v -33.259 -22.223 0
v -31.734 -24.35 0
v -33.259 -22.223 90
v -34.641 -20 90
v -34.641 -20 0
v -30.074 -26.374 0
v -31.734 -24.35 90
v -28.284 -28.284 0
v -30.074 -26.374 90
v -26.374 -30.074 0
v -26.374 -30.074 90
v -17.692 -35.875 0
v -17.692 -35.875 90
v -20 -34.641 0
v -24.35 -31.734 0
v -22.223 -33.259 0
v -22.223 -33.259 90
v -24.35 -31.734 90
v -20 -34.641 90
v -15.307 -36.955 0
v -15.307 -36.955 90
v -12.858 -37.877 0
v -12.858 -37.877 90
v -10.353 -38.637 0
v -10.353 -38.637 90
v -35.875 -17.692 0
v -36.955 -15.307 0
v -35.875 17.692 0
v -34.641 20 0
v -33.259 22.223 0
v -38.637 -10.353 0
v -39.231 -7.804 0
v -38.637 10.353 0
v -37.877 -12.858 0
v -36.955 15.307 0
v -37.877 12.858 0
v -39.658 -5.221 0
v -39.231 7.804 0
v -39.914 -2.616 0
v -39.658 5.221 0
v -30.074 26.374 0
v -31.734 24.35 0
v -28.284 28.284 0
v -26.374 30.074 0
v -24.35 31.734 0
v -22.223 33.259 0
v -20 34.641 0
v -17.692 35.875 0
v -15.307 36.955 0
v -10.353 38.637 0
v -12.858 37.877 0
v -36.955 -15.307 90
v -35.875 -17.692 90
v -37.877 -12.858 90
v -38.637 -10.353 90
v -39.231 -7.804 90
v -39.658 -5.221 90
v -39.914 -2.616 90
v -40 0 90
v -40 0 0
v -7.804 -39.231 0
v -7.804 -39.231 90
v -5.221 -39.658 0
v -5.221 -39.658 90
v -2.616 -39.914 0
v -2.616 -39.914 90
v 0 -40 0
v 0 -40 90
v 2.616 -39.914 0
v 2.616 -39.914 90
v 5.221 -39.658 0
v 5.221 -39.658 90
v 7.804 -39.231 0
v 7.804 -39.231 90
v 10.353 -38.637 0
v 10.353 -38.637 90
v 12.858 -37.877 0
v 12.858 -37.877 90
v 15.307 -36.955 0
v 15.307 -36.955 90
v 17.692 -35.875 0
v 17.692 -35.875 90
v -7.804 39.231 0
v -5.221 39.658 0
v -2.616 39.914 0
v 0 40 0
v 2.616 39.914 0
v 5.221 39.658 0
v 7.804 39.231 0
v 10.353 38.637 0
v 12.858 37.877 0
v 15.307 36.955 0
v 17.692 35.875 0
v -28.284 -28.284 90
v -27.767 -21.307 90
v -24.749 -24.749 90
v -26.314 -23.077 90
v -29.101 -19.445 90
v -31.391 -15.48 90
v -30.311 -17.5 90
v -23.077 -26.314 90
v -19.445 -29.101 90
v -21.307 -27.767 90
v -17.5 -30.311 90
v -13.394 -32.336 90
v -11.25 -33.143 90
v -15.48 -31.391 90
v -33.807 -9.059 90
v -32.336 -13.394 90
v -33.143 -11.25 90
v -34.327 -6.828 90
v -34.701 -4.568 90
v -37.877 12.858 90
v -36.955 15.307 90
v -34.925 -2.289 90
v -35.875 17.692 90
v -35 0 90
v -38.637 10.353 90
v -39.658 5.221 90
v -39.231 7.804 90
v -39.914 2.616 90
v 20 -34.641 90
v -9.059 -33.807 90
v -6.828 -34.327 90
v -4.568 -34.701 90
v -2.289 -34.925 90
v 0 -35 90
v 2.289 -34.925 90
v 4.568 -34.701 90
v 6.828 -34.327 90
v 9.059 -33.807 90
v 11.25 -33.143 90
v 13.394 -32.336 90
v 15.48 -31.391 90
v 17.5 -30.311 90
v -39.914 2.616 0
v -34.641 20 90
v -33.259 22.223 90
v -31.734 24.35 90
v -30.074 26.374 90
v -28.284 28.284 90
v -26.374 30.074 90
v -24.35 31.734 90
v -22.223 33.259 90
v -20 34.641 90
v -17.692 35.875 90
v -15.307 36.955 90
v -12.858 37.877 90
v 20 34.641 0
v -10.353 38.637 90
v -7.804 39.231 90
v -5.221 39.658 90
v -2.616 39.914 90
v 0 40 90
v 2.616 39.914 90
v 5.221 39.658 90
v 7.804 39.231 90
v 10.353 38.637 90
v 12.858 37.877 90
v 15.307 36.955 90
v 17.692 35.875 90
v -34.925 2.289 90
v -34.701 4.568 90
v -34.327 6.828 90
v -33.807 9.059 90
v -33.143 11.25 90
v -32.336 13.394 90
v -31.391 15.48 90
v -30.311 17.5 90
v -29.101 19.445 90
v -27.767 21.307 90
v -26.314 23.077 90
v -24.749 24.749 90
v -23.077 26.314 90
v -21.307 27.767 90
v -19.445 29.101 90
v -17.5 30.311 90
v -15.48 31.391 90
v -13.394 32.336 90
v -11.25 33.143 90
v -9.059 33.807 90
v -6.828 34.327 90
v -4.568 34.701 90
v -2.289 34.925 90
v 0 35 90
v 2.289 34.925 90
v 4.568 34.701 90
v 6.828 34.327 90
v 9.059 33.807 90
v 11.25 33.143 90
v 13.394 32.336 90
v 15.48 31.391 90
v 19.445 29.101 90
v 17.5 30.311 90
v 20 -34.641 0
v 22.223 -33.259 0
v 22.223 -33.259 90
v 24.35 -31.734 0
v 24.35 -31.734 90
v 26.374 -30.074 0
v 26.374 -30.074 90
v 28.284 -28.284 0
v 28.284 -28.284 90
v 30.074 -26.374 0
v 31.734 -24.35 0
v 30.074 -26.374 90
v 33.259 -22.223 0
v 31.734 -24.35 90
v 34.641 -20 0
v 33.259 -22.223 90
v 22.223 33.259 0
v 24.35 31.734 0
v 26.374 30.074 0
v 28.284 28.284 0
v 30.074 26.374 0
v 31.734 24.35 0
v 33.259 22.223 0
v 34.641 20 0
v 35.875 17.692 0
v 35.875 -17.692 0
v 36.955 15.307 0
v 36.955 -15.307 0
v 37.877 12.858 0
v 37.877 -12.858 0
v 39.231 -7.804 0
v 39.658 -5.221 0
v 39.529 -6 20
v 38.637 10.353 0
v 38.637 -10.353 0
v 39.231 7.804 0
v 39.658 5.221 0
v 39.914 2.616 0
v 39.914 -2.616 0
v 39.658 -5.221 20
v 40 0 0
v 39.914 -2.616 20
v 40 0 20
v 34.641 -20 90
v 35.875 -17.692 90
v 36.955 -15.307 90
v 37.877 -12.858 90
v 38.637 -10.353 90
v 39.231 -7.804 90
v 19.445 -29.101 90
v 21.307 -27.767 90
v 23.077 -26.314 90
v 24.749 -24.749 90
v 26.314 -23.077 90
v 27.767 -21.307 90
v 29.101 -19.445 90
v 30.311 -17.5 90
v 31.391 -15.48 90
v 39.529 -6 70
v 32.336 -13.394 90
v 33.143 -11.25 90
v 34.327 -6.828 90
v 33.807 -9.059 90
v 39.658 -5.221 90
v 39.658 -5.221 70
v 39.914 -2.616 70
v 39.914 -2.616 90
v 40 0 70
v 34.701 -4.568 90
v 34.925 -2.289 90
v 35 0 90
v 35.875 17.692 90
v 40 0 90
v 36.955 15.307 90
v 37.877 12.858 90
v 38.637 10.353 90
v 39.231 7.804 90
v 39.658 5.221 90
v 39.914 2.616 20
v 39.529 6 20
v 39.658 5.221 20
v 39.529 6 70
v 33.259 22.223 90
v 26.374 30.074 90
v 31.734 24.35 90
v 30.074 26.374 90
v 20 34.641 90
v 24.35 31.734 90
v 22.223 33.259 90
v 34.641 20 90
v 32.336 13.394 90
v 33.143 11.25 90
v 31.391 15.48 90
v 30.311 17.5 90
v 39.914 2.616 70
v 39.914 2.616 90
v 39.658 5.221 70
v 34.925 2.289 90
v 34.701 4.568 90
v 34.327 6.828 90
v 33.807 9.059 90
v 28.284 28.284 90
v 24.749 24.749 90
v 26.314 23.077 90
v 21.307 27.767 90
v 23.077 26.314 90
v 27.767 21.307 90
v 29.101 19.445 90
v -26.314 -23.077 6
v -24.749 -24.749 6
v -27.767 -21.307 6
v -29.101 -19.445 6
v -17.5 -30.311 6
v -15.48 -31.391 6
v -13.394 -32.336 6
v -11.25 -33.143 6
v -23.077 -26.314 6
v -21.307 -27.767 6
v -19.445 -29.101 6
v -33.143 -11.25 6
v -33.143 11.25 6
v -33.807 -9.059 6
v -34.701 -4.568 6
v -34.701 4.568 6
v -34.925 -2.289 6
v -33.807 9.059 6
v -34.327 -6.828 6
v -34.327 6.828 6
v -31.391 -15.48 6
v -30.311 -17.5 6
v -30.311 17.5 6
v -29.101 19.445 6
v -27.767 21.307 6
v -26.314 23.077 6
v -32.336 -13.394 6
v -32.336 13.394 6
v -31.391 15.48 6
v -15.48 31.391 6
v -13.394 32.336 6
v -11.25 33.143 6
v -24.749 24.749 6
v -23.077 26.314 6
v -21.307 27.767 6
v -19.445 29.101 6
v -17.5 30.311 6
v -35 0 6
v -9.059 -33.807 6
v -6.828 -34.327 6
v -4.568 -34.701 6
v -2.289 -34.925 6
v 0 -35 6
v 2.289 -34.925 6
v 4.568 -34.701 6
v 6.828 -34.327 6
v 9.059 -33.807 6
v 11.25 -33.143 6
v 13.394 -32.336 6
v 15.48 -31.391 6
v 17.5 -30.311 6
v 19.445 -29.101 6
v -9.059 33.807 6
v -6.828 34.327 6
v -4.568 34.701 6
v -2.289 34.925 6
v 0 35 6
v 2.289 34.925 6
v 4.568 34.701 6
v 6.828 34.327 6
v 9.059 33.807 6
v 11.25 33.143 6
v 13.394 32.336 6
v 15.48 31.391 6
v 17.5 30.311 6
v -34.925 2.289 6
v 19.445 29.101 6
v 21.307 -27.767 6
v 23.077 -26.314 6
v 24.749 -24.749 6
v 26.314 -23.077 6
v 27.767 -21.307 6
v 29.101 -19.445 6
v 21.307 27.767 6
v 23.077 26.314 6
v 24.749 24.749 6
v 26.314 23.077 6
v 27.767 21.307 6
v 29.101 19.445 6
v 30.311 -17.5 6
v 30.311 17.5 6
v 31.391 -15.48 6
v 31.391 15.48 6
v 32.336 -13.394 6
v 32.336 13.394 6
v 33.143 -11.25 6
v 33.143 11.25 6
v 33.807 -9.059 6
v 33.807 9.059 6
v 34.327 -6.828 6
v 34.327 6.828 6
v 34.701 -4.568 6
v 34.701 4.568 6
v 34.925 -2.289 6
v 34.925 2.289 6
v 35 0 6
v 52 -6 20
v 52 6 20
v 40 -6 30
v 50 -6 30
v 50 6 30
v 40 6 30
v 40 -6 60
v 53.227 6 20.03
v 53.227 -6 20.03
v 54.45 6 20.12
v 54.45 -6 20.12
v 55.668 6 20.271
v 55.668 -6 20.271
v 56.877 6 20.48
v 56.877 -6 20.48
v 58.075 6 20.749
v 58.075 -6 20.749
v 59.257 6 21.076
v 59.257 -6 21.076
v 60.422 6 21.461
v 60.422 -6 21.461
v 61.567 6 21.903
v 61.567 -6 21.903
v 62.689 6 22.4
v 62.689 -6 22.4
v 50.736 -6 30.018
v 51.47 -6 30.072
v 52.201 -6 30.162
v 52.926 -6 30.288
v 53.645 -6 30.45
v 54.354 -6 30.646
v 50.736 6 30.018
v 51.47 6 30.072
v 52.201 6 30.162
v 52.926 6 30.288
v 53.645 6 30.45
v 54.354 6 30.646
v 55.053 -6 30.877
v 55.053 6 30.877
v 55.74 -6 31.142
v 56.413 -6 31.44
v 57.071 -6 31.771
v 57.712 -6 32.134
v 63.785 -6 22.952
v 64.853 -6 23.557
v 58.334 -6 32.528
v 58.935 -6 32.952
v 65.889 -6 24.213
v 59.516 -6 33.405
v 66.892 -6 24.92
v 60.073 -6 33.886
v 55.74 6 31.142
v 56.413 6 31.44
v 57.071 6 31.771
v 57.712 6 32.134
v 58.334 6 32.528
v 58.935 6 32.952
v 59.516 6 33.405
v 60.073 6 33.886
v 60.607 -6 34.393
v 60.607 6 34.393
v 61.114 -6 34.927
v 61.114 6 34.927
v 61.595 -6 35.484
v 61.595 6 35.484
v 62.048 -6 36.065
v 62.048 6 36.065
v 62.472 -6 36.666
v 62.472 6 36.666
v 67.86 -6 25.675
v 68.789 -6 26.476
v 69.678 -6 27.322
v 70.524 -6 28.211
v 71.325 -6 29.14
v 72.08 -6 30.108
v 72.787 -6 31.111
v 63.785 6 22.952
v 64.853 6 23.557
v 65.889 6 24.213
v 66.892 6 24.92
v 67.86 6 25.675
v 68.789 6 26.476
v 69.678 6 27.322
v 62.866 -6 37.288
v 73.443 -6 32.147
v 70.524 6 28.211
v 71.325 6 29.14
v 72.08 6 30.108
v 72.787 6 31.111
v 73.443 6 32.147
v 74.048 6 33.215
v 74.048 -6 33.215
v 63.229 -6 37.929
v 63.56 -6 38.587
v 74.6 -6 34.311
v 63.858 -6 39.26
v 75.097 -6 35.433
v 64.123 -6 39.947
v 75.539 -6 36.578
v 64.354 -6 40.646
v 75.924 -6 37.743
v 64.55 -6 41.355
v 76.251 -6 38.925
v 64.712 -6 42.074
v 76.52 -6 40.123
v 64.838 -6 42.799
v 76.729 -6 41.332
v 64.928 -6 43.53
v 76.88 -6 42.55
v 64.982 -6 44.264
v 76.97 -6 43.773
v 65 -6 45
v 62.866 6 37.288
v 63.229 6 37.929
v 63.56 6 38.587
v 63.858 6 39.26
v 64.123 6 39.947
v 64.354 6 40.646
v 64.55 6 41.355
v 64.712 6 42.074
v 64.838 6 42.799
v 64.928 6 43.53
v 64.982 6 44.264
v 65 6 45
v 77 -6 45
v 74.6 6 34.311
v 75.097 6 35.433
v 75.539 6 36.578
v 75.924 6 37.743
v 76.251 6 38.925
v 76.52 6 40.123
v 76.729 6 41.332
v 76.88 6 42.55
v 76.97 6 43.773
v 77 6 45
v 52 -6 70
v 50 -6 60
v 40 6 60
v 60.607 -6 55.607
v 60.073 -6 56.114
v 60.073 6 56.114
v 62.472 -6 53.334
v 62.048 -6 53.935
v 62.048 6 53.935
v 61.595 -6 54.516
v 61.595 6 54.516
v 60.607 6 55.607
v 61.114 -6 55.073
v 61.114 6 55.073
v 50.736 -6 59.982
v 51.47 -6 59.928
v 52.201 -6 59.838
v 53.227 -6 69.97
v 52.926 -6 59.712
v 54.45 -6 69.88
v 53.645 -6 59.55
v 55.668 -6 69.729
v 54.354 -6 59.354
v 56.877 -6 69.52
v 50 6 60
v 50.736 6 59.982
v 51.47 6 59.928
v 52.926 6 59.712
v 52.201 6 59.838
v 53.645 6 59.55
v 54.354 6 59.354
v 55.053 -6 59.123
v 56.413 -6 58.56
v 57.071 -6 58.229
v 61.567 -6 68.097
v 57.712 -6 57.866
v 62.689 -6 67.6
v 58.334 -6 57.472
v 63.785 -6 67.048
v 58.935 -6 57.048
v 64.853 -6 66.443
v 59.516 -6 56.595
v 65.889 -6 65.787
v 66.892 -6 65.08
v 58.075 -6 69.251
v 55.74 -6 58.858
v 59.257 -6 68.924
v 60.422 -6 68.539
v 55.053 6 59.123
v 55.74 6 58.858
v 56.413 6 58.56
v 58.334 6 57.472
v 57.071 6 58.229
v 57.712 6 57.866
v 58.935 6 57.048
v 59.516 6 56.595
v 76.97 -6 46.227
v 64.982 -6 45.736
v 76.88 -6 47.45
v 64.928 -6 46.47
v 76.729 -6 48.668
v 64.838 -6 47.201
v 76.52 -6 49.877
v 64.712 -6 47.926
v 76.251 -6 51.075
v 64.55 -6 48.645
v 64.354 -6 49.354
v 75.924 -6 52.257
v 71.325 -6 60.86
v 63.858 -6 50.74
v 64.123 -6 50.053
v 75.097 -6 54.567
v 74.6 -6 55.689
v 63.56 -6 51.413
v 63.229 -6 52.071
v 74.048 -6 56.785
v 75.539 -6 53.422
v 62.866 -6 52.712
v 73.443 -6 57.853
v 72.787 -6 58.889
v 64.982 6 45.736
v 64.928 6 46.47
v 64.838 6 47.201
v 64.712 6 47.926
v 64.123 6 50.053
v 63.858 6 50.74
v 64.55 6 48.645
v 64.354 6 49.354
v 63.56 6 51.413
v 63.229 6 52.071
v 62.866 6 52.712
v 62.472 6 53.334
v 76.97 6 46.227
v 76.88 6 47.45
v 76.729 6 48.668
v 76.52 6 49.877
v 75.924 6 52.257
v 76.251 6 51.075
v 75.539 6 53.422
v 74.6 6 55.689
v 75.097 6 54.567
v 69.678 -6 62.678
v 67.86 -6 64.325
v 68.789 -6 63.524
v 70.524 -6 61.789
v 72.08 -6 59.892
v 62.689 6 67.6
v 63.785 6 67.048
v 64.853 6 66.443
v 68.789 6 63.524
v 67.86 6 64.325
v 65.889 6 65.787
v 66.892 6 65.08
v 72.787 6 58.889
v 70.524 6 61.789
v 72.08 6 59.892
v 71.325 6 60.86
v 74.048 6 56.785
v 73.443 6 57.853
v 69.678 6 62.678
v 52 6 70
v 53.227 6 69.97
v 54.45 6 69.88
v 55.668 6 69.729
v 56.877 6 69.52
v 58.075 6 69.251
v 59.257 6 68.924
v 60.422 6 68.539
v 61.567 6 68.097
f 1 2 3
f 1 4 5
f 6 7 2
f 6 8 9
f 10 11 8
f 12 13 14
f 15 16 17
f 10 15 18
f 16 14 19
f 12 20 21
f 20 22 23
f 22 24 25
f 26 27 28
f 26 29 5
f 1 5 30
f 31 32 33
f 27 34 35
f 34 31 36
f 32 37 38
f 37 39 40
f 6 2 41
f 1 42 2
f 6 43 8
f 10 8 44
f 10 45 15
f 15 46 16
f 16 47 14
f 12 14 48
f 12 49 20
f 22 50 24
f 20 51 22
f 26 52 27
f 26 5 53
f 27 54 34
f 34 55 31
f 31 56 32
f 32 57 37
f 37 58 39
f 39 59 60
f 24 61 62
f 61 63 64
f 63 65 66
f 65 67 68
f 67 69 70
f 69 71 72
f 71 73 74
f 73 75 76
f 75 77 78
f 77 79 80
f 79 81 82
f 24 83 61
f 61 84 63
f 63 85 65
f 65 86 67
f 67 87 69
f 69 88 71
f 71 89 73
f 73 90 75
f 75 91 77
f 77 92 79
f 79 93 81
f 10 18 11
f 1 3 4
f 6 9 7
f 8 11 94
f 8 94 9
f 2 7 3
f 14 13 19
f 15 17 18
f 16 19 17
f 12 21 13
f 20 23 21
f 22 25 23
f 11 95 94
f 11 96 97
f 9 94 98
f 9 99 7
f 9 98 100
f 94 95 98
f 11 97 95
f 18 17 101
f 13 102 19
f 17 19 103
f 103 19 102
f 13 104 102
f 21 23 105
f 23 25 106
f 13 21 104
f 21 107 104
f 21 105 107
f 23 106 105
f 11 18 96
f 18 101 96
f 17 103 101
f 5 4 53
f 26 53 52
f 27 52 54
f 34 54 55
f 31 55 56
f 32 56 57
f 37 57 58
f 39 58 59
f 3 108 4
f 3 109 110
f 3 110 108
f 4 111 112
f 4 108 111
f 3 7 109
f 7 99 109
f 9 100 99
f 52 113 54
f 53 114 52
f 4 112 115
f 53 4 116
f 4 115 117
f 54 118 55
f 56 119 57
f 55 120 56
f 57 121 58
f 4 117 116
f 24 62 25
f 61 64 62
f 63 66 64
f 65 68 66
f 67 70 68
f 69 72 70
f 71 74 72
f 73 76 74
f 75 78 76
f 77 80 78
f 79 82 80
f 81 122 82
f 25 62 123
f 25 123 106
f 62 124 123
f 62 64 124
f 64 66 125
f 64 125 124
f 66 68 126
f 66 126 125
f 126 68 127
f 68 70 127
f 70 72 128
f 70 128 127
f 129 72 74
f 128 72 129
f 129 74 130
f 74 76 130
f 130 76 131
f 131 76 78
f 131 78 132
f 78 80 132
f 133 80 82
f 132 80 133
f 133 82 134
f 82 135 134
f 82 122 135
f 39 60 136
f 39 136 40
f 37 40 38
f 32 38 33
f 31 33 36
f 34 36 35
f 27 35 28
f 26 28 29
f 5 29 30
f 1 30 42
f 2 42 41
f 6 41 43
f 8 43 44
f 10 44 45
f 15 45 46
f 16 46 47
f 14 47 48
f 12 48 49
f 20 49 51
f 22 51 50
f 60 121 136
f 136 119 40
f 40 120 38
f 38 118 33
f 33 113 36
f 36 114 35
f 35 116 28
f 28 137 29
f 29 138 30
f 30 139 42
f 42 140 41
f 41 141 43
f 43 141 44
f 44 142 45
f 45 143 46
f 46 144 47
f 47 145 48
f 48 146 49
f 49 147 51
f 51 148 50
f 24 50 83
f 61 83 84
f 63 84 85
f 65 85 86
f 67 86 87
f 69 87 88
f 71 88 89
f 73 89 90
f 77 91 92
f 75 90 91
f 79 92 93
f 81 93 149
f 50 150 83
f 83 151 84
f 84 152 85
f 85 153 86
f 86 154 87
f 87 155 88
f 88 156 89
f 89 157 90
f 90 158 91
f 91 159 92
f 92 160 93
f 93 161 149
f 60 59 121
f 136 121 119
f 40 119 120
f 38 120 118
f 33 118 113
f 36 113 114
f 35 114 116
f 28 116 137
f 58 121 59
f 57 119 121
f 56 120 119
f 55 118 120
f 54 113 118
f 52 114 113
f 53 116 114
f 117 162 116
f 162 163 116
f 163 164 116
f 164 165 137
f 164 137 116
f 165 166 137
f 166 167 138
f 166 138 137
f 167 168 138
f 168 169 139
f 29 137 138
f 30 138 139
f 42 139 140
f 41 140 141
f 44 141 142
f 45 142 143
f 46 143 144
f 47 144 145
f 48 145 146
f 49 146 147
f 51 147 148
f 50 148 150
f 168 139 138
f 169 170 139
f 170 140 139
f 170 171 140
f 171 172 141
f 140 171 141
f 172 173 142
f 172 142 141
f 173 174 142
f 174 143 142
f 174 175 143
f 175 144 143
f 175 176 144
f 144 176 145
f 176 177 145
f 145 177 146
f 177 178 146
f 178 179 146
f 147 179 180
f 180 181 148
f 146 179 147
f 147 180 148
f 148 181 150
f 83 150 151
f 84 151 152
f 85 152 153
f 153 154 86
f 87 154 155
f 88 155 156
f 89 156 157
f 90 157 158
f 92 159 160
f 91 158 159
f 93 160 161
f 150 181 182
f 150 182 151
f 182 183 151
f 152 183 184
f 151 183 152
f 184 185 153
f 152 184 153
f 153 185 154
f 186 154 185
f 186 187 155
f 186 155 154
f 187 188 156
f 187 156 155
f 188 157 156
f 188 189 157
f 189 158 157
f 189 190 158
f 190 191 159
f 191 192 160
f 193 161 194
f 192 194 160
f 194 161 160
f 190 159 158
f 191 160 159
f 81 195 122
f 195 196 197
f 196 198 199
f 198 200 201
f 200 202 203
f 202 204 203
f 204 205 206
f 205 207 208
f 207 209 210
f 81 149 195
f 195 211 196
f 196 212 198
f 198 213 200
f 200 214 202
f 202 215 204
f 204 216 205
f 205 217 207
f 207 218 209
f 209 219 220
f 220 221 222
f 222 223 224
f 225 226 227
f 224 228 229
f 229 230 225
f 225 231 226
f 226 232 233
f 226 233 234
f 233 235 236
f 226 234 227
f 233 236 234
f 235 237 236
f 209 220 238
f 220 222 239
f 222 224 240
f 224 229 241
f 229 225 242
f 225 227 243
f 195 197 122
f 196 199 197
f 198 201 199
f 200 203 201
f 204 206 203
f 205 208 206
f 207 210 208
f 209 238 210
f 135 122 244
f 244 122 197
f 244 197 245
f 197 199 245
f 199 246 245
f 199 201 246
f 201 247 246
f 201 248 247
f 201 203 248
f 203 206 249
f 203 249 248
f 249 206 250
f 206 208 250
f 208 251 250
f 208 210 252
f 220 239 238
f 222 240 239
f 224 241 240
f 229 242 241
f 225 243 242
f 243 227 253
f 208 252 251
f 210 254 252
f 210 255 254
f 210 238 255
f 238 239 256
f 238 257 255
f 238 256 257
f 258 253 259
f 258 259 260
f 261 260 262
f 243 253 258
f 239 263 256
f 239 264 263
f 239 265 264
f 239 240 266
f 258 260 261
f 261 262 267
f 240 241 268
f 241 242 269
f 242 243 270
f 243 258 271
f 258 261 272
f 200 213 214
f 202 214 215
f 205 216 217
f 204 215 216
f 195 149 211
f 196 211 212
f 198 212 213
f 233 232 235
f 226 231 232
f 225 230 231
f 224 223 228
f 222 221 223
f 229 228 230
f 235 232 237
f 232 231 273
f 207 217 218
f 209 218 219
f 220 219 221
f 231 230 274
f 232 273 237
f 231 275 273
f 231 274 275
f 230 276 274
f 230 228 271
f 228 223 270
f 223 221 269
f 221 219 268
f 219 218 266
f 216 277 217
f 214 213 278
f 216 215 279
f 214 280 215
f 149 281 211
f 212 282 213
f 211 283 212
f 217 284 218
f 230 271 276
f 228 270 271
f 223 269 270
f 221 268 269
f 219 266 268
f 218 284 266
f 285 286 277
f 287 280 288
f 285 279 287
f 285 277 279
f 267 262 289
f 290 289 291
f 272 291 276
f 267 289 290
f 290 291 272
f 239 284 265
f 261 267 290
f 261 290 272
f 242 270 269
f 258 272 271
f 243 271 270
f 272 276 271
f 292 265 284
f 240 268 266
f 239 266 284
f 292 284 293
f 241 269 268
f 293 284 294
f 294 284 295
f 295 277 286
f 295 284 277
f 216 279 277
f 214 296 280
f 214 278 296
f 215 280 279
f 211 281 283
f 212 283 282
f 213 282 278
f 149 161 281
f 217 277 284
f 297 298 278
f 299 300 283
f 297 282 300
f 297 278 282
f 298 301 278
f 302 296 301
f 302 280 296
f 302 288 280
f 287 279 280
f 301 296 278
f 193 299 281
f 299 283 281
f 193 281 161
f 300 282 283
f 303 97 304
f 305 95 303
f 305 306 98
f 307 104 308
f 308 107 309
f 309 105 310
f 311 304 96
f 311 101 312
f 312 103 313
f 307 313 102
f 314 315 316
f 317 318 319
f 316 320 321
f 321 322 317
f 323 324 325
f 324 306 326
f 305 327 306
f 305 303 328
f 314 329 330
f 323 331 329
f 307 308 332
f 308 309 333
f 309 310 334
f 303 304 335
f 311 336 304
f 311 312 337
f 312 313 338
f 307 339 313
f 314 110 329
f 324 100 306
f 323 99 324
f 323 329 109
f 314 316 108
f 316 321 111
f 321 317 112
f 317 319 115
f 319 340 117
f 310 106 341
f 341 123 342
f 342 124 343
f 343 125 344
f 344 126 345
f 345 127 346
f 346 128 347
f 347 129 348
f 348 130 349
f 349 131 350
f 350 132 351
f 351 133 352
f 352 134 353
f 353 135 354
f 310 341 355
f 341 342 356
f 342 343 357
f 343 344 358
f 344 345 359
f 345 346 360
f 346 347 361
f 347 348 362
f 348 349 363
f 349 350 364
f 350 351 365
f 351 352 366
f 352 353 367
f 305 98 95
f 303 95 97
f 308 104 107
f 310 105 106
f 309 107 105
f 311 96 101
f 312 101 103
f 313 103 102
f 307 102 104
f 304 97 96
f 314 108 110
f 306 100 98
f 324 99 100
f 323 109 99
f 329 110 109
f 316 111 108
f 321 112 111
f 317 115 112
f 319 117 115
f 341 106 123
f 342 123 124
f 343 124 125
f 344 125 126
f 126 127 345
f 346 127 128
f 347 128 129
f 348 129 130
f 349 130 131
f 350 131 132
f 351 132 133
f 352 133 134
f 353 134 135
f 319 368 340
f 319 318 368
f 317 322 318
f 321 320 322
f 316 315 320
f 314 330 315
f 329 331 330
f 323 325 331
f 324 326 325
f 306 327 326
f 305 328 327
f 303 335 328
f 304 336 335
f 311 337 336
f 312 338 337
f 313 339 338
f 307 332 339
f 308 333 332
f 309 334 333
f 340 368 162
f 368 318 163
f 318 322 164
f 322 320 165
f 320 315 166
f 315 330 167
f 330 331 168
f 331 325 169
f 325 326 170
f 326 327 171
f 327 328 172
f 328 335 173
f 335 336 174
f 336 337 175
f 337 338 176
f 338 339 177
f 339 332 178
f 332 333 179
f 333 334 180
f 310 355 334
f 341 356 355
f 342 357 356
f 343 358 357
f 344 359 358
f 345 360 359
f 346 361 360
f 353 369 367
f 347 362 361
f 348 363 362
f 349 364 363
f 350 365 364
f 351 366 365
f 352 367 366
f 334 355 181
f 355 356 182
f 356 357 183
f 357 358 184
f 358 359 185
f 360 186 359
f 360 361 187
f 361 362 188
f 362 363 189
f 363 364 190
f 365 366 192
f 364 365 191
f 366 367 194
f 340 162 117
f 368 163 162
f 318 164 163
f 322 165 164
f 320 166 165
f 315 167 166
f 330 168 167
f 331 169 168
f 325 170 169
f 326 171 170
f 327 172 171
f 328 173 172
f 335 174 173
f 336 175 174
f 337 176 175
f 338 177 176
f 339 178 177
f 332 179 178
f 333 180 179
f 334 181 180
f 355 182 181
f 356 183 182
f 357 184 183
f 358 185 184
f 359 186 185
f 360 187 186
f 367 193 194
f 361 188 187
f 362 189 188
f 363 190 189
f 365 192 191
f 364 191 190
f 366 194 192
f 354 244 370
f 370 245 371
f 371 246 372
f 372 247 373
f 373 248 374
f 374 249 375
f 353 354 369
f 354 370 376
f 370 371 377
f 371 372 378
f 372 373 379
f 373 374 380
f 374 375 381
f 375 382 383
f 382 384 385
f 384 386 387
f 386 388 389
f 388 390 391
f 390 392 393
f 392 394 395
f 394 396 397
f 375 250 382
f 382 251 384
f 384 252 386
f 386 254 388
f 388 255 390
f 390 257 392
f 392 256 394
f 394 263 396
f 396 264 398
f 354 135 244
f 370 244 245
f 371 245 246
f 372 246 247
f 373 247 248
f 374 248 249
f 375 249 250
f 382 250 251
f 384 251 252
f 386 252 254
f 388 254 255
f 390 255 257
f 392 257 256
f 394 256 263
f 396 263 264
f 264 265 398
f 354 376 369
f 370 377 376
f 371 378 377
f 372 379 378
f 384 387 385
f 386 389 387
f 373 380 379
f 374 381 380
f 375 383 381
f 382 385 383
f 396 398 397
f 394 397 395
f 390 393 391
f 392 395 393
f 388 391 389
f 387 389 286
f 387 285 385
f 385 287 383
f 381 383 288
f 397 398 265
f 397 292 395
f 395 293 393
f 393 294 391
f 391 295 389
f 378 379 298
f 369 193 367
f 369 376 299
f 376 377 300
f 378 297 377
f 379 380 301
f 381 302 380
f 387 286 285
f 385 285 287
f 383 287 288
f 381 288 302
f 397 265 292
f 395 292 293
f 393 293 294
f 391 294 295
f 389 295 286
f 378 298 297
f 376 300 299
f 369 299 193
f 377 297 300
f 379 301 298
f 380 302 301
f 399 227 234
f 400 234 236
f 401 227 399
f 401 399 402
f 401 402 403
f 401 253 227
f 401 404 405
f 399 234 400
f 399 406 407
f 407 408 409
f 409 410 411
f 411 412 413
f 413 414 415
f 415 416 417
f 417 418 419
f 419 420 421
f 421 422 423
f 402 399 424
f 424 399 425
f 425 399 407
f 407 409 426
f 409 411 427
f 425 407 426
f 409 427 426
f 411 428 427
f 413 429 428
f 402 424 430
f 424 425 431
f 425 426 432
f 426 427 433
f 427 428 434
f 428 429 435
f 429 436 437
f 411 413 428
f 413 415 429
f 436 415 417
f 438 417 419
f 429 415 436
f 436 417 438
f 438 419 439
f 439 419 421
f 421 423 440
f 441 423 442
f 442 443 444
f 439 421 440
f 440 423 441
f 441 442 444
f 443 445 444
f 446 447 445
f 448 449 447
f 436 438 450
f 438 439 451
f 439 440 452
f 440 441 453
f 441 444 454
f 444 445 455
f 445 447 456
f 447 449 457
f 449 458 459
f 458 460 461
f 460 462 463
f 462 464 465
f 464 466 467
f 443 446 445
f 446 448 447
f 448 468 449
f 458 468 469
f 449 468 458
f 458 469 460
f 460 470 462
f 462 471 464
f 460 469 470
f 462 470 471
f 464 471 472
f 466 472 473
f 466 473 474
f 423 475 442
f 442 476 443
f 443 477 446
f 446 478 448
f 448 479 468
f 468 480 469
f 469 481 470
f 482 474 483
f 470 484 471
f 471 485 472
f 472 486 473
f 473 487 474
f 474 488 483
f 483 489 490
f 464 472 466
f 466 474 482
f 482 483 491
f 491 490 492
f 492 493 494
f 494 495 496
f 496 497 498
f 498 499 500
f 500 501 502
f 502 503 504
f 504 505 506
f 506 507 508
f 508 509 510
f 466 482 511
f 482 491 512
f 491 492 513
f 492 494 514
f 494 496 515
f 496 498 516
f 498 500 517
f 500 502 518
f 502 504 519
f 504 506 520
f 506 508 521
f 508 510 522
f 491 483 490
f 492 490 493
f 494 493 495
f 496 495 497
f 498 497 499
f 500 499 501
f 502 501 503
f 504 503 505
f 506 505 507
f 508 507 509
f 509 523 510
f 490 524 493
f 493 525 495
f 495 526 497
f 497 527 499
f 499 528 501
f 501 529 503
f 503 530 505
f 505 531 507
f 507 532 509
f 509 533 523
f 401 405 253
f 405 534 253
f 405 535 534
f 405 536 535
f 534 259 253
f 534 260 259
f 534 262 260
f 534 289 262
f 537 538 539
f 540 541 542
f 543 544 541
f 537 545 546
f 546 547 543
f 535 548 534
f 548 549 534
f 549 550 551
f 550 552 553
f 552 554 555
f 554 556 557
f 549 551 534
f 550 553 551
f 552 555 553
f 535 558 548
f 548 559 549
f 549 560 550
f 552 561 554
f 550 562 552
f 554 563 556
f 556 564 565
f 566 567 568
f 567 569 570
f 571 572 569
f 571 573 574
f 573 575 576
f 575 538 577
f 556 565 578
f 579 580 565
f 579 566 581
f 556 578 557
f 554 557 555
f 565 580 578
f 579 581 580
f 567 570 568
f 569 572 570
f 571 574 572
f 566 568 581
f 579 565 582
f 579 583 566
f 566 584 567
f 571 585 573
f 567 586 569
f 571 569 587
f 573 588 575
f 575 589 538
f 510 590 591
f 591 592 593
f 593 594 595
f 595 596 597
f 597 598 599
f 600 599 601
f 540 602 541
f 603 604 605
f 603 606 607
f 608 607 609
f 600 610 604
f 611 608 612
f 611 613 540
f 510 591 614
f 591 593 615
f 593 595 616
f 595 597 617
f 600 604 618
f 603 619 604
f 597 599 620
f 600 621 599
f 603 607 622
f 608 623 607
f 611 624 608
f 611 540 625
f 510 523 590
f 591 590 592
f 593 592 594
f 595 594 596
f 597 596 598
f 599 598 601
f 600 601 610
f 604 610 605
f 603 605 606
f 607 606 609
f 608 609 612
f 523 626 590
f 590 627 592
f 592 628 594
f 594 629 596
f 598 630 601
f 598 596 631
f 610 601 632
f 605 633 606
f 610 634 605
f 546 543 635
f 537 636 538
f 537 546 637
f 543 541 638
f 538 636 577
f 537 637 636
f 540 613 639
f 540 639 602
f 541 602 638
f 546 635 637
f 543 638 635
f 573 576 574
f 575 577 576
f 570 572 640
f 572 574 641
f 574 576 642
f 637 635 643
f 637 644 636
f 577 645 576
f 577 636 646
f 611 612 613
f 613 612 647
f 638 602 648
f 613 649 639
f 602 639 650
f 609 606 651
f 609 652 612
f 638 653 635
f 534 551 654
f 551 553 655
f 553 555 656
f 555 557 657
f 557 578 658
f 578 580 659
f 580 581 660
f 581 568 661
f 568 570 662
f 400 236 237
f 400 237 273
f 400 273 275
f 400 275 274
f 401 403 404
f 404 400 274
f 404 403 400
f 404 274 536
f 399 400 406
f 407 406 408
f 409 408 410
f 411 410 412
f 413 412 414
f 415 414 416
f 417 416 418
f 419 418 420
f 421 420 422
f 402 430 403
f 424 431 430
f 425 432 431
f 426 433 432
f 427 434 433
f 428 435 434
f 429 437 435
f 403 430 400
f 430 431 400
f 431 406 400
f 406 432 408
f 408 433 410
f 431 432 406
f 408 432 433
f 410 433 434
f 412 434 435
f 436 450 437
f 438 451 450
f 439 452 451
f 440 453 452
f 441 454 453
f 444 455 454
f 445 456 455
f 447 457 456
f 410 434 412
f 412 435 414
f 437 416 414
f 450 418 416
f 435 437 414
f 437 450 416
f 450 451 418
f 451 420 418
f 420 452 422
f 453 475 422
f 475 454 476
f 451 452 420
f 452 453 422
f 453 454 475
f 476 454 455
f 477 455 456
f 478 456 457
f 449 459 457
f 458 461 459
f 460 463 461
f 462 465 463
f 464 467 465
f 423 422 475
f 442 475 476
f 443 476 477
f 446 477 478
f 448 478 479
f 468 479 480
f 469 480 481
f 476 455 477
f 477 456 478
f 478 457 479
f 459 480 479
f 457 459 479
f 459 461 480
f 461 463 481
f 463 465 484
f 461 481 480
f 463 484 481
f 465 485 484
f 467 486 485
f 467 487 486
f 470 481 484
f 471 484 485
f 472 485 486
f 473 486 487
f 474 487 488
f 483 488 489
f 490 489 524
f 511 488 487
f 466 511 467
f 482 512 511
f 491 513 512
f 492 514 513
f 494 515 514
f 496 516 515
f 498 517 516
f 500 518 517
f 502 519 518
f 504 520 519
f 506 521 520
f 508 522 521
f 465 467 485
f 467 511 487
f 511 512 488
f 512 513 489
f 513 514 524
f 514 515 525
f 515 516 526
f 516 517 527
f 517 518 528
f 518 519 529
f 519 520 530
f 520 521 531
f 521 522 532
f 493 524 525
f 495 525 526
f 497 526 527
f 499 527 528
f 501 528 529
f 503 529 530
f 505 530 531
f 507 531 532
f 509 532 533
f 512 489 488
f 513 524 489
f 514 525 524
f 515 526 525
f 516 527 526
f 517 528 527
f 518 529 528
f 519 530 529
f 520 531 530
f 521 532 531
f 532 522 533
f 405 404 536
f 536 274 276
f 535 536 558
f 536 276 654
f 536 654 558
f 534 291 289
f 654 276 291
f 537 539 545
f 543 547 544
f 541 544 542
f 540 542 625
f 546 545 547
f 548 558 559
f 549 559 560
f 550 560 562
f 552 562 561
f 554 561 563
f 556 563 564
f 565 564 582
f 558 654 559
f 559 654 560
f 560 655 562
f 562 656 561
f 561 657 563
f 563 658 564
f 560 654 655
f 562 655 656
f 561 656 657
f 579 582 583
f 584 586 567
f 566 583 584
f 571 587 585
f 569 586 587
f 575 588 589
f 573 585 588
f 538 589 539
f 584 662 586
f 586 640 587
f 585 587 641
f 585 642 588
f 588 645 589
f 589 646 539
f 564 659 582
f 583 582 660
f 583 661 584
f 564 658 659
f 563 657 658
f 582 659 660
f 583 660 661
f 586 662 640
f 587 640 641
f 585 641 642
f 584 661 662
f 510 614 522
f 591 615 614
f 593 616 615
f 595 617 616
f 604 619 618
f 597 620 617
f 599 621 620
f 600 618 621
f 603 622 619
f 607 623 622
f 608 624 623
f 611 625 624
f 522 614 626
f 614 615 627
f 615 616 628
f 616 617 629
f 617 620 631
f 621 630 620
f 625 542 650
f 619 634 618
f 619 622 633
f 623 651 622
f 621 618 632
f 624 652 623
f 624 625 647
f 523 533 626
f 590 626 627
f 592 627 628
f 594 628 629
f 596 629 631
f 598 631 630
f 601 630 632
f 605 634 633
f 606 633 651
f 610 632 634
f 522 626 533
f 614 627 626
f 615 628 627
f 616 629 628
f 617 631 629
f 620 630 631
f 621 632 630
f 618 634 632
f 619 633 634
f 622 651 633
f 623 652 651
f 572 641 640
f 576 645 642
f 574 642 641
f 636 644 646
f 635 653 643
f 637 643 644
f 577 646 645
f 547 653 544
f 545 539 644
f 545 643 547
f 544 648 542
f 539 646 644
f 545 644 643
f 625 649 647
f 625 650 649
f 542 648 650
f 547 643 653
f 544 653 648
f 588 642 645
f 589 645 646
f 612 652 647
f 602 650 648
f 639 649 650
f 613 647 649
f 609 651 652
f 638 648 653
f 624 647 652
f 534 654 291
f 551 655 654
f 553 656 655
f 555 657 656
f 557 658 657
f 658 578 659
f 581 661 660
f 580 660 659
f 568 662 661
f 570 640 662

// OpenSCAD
$fn = 96;

outer_diameter = 80;
inner_diameter = 70;
mug_height = 90;
bottom_thickness = 6;

handle_thickness = 12;  // Y方向
handle_center_z = 45;
arc_segments = 64;

// XZ平面上のD字形状。左側が直線、右側が半円。
module d_shape(left_x, arc_center_x, radius, center_z) {
    polygon(points = concat(
        [[left_x, center_z - radius]],
        [
            for (i = [0:arc_segments])
                let(a = -90 + 180 * i / arc_segments)
                [arc_center_x + radius * cos(a),
                 center_z + radius * sin(a)]
        ],
        [[left_x, center_z + radius]]
    ));
}

module mug_body() {
    difference() {
        cylinder(d = outer_diameter, h = mug_height);
        translate([0, 0, bottom_thickness])
            cylinder(d = inner_diameter,
                     h = mug_height - bottom_thickness + 1);
    }
}

module handle() {
    translate([0, handle_thickness / 2, 0])
        rotate([90, 0, 0])
            linear_extrude(height = handle_thickness)
                difference() {
                    // 外形：高さ50mm、+X方向へ張り出す半円
                    d_shape(37, 52, 25, handle_center_z);

                    // 指を入れる空間：高さ30mm、幅25mm（X=40～65）
                    d_shape(40, 50, 15, handle_center_z);
                }
}

union() {
    mug_body();
    handle();
}
